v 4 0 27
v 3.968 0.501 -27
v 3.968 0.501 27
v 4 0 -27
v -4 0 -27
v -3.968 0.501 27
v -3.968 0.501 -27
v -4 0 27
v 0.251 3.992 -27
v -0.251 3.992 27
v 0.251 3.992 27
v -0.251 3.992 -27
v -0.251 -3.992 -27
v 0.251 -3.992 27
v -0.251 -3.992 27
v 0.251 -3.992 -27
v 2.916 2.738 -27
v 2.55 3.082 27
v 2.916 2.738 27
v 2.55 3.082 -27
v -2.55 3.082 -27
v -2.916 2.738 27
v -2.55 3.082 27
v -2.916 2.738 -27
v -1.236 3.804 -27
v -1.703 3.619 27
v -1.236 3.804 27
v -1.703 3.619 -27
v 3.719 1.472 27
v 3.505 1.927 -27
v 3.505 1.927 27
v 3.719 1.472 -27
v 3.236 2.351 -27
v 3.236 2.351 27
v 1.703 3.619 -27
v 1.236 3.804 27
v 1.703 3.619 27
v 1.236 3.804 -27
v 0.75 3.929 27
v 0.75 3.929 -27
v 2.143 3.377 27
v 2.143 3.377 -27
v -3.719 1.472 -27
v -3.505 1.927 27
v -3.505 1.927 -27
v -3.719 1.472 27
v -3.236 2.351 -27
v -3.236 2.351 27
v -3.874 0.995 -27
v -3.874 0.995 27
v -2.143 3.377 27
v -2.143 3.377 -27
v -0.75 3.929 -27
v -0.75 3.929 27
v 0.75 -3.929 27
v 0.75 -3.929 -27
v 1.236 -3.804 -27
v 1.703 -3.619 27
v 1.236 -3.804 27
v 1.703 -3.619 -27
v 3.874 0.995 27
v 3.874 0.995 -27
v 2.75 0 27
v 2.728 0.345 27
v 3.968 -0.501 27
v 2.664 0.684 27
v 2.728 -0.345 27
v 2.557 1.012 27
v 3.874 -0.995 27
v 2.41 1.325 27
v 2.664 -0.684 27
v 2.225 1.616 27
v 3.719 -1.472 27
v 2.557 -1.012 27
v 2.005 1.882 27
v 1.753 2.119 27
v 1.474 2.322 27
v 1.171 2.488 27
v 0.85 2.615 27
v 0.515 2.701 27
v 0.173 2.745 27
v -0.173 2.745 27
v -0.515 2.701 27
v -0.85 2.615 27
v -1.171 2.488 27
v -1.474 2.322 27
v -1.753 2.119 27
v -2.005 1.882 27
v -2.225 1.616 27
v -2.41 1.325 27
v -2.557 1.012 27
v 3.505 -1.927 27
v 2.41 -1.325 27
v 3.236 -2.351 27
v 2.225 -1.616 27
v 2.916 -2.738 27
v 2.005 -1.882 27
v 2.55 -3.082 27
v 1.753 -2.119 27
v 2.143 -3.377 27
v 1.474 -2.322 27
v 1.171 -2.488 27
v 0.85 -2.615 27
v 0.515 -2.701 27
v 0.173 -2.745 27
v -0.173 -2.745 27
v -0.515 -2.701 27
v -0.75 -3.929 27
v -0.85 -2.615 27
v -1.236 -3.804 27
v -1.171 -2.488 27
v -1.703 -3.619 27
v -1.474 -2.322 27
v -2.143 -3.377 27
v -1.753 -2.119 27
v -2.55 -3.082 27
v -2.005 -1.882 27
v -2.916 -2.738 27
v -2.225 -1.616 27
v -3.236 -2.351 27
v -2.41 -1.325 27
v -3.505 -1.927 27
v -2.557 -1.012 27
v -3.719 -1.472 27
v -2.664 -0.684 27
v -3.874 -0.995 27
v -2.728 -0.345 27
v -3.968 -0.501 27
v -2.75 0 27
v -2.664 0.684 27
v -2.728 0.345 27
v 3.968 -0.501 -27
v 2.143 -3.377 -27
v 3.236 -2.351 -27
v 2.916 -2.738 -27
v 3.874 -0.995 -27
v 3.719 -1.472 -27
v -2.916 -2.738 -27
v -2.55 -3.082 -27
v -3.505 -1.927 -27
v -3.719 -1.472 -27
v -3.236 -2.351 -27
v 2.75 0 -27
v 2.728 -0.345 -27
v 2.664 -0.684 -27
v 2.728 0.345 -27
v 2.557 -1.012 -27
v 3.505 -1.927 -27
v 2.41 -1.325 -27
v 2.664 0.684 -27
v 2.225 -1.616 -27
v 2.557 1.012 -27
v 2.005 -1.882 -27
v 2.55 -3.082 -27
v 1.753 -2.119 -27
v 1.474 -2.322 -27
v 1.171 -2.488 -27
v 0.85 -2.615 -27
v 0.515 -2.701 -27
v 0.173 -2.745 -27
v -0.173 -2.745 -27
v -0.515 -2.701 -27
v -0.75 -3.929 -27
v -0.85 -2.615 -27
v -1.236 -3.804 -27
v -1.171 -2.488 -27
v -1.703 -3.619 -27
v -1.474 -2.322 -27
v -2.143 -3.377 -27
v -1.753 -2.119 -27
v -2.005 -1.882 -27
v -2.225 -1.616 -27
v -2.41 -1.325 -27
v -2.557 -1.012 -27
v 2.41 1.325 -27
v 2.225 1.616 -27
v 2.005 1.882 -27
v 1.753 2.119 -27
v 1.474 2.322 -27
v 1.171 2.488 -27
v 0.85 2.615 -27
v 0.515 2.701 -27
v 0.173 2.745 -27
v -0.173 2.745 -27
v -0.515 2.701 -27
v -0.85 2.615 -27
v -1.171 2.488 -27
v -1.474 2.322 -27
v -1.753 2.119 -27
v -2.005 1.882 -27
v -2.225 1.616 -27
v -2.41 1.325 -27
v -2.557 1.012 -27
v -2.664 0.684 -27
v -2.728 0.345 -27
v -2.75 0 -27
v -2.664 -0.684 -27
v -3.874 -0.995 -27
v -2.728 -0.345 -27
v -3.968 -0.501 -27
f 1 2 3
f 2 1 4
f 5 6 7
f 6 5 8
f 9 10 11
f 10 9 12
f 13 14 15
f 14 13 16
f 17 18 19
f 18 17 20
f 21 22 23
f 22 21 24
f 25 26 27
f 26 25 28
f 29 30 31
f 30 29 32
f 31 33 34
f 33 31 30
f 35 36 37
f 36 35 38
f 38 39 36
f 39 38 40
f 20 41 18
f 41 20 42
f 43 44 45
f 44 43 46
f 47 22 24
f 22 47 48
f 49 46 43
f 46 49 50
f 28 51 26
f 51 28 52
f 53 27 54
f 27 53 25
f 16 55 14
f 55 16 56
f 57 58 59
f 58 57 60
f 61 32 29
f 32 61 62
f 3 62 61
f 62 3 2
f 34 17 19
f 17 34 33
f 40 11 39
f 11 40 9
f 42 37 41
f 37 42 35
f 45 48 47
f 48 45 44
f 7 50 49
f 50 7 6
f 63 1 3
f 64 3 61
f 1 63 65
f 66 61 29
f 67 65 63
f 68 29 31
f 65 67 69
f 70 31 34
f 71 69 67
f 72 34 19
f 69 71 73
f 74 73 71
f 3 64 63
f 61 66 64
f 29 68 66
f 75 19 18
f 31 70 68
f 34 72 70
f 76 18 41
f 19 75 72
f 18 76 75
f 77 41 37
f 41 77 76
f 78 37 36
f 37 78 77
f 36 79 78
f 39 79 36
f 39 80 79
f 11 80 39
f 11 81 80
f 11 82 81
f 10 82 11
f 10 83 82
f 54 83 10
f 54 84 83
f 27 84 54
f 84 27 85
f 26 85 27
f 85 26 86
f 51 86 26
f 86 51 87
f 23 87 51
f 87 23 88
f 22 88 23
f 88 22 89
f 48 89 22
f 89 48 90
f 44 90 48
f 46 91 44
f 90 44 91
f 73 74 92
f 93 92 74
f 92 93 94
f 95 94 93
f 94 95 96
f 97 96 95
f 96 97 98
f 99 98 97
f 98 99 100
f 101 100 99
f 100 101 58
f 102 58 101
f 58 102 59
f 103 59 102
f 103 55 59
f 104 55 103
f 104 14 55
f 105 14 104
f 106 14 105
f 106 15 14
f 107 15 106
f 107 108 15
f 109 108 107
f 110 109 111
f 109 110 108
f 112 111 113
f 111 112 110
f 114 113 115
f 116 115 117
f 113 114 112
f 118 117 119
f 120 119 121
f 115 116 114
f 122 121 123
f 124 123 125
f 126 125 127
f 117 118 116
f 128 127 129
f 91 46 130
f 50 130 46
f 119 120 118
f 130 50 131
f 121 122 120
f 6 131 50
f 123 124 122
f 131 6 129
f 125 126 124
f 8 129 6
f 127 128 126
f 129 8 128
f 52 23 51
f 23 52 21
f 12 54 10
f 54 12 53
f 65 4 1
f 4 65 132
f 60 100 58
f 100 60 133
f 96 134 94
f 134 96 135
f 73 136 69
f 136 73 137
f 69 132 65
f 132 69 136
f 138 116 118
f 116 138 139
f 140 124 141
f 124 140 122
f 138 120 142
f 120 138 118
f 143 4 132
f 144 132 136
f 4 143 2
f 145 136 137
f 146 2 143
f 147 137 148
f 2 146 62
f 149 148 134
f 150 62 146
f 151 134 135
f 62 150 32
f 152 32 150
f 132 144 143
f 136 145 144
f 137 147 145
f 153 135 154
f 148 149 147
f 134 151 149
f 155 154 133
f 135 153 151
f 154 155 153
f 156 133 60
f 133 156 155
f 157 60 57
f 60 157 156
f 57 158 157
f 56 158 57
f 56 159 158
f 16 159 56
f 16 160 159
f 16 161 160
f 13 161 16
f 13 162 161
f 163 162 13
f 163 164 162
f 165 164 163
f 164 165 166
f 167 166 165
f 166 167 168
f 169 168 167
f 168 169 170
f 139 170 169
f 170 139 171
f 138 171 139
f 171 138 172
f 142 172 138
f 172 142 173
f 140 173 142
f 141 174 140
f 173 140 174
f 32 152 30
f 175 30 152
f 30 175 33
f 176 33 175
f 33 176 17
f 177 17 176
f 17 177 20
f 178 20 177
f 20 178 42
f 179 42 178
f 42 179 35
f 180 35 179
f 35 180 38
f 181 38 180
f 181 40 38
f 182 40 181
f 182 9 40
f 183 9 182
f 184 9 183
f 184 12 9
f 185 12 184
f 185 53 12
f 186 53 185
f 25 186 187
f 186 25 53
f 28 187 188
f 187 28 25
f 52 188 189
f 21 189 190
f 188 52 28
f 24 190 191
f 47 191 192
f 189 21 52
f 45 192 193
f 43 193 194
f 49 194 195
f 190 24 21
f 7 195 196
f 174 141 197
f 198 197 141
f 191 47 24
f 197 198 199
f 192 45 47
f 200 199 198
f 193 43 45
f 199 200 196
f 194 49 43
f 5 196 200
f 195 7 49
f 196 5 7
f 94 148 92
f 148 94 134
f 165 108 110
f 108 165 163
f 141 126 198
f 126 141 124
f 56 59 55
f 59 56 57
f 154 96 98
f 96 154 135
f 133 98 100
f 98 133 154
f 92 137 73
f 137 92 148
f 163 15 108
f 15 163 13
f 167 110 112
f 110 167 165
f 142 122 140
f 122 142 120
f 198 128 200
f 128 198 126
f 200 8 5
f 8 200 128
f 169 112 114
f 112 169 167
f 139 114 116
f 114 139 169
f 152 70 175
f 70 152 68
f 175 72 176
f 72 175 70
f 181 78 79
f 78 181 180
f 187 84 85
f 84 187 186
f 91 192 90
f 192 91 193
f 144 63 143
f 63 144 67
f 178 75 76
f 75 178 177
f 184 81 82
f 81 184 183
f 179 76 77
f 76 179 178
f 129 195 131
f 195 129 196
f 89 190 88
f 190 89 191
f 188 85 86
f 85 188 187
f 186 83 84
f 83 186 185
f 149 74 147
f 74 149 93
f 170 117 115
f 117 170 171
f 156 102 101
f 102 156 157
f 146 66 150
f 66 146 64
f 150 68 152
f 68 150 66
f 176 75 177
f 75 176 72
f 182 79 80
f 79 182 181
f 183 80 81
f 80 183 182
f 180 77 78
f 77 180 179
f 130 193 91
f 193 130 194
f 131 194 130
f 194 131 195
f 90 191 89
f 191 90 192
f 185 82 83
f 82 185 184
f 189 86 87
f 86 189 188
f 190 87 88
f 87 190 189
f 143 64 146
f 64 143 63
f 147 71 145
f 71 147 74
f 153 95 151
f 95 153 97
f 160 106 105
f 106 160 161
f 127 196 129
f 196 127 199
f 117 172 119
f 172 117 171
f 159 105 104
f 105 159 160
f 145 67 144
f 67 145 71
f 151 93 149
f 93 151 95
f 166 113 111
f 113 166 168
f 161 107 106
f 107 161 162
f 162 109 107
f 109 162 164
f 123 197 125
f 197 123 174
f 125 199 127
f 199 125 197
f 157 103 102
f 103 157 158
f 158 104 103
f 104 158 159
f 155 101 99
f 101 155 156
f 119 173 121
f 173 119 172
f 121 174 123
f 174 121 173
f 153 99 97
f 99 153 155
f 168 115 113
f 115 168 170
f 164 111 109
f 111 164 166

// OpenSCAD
$fn = 50;


difference() {
	union() {
		translate(v = [0, 0, -27.0000000000]) {
			cylinder(h = 54, r = 4.0000000000);
		}
	}
	union() {
		translate(v = [0, 0, -100.0000000000]) {
			cylinder(h = 200, r = 2.7500000000);
		}
	}
}
